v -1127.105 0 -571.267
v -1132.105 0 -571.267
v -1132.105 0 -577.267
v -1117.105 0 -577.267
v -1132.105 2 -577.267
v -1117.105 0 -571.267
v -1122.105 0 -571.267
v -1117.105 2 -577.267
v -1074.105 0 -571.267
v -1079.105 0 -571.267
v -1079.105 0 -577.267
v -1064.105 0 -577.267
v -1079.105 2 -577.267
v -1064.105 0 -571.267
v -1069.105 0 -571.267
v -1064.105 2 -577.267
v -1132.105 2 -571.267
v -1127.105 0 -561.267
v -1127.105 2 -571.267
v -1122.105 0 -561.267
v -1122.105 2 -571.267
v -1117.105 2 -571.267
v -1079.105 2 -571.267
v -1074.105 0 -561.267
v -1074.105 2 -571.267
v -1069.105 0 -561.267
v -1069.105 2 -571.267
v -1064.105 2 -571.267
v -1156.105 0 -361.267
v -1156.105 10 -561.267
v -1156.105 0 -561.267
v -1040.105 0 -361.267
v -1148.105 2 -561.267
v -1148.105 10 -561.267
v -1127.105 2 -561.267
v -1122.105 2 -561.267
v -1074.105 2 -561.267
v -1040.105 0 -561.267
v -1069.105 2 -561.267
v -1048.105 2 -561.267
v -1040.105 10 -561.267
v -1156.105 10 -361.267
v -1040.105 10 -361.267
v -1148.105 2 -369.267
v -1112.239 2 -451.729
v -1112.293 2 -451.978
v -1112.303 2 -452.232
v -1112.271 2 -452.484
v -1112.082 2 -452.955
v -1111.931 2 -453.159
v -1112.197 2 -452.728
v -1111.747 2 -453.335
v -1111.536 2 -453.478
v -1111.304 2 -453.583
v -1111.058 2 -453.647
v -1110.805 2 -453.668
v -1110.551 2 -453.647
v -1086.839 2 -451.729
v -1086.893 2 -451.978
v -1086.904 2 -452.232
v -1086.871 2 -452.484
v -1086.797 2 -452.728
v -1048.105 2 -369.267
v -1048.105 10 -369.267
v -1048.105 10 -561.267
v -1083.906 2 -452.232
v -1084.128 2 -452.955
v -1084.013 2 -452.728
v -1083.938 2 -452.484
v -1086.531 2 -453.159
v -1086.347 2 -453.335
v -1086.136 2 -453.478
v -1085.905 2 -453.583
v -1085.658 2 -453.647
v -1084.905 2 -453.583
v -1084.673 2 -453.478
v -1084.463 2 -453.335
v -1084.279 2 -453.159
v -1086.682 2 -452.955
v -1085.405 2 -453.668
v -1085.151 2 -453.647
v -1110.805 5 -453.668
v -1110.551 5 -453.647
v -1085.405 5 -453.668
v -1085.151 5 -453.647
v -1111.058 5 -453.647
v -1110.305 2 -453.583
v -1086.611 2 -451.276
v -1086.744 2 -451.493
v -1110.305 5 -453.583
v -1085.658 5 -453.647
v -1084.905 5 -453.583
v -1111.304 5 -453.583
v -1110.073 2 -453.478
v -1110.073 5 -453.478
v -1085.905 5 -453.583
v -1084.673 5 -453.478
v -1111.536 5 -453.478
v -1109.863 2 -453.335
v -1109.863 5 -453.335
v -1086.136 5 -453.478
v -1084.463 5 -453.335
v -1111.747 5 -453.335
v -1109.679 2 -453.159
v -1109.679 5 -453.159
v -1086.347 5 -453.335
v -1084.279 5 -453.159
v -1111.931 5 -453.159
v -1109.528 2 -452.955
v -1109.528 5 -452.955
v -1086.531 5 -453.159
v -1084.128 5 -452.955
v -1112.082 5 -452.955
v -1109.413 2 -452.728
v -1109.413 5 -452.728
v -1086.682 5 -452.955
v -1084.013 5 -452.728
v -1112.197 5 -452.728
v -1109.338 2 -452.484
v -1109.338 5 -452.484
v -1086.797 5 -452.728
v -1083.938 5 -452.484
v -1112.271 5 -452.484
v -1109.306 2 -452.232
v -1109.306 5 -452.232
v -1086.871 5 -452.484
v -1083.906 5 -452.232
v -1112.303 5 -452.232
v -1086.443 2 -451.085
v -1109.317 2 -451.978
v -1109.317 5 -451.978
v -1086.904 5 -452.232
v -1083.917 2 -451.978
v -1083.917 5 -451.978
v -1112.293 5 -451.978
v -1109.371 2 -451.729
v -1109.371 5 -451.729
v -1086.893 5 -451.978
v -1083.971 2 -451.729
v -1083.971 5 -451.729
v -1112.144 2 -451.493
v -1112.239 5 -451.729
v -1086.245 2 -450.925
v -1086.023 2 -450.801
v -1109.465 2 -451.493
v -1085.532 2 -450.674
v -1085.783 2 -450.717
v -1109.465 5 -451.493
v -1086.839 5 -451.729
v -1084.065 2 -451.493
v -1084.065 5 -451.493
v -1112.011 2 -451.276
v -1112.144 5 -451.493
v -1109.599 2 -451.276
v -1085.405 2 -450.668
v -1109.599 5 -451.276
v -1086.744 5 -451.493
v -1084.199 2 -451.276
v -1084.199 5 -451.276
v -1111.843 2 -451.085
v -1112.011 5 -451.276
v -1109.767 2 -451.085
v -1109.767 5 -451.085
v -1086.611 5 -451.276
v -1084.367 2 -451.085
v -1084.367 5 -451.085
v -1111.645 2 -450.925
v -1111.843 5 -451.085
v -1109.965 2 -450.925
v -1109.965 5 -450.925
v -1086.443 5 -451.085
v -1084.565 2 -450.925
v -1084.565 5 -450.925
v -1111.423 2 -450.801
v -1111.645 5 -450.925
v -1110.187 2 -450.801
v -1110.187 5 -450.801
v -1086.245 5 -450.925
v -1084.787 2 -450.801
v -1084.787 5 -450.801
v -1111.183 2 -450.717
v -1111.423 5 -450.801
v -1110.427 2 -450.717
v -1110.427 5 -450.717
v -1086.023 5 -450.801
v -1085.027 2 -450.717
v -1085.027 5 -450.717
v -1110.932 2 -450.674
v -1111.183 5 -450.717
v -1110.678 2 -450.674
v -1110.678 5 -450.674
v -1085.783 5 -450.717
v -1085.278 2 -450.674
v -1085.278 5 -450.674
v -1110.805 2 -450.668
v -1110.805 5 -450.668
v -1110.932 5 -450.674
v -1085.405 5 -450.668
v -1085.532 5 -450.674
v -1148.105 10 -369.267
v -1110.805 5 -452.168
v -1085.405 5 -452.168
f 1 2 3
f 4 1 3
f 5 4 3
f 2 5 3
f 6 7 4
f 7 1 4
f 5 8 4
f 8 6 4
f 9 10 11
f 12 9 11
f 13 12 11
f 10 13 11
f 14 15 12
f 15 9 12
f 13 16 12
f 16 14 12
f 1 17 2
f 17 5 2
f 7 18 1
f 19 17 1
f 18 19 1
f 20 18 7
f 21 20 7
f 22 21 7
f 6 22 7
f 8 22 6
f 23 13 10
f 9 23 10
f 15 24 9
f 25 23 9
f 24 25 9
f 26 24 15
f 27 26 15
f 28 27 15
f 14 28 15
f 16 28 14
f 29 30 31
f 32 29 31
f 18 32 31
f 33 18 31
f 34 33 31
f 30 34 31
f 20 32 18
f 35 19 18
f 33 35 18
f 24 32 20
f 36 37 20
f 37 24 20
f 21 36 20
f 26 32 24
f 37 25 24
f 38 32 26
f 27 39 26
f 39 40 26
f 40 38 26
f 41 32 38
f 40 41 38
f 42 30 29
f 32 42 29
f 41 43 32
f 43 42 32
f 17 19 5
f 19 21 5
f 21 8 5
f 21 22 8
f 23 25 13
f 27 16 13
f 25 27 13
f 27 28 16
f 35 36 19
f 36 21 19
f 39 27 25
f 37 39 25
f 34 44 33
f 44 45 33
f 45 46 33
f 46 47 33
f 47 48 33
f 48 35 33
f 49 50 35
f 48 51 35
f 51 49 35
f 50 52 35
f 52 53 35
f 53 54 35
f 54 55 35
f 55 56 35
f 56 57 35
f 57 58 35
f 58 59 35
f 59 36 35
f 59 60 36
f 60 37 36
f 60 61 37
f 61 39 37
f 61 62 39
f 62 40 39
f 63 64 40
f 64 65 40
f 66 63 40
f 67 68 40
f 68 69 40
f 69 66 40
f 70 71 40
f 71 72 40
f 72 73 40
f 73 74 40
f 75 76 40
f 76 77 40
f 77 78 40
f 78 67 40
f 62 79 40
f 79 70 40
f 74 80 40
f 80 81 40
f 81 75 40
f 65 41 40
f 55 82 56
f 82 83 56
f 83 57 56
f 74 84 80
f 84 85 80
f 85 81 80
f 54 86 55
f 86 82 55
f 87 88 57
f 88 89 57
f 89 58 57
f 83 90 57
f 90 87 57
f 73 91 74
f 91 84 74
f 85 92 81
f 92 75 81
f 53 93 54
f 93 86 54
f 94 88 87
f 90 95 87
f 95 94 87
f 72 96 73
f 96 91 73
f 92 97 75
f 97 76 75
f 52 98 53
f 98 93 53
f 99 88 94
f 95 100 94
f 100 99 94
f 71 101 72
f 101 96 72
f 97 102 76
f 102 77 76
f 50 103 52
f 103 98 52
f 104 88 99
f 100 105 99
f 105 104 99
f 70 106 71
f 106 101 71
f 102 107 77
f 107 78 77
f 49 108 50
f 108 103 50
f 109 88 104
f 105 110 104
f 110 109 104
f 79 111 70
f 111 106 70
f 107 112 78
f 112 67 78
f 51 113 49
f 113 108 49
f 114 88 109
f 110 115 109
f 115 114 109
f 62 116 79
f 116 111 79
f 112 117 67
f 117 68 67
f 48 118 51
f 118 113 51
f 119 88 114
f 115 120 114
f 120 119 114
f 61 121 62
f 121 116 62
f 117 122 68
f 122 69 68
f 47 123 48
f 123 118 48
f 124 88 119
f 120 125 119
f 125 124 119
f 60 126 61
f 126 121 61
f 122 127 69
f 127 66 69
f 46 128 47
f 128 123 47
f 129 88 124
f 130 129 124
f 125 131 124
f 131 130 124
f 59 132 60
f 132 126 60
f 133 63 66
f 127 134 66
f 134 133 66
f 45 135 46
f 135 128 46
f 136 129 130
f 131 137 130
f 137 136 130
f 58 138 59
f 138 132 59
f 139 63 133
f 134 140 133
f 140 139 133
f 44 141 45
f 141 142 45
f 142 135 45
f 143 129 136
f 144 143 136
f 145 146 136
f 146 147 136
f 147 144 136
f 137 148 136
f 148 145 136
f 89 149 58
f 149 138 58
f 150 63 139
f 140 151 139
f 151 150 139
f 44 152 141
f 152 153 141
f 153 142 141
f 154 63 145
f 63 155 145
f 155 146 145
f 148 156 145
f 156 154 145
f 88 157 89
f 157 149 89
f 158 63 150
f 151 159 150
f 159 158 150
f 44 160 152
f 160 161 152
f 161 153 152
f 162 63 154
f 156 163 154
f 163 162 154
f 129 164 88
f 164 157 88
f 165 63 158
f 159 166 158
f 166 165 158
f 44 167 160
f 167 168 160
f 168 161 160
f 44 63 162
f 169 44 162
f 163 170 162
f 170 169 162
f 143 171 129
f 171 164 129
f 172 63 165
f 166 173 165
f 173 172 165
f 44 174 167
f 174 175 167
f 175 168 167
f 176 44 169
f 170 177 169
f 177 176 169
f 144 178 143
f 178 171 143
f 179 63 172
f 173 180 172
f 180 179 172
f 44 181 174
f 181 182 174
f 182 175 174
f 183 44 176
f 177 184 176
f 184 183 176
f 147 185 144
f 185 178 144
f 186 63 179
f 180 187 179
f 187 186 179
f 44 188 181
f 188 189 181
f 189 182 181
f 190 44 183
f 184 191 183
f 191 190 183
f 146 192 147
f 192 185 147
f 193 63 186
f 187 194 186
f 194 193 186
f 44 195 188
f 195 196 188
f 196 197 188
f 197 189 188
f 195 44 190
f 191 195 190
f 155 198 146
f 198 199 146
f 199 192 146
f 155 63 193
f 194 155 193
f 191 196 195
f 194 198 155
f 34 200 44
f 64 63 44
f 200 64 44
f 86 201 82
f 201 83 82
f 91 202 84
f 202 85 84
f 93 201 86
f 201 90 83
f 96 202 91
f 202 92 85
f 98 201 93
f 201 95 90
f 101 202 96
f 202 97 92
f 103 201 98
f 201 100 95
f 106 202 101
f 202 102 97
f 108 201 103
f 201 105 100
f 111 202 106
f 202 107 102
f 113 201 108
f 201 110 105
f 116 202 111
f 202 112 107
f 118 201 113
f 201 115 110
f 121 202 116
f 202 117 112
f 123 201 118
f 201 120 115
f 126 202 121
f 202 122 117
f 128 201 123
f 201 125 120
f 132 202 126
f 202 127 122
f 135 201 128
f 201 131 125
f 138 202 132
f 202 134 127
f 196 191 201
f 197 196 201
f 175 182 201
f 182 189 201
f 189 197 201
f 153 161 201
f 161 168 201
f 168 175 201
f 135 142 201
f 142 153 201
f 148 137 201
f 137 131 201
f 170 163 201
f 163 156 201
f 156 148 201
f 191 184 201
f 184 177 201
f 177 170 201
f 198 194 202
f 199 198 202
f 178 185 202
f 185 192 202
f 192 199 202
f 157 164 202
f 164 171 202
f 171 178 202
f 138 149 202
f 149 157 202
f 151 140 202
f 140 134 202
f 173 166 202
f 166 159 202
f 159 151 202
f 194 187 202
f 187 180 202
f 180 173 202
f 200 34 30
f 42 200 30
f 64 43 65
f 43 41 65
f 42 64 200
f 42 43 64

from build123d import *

# Parameters (mm, degrees)
SKETCH3_W               = 116
SKETCH3_H               = 416
BOSS_EXTRUDE1_DEPTH     = 10
SKETCH4_W               = 100
SKETCH4_H               = 400
CUT_EXTRUDE1_DEPTH      = 8
SKETCH6_W               = 3
SKETCH6_H               = 100
BOSS_EXTRUDE4_DEPTH     = 3
SKETCH7_R               = 1.5
BOSS_EXTRUDE5_DEPTH     = 3
CUT_EXTRUDE3_DEPTH      = 10
CUT_EXTRUDE3_DEPTH_BACK = 10
SKETCH8_W               = 116
SKETCH8_H               = 200
CUT_EXTRUDE4_DEPTH      = 10
SKETCH11_W              = 8
SKETCH11_H              = 16
CUT_EXTRUDE5_DEPTH      = 10
SKETCH13_R              = 1.5
BOSS_EXTRUDE8_DEPTH     = 3


with BuildPart() as part:
    # Sketch3 → Boss-Extrude1 (new body)
    with BuildSketch(Plane(origin=(0, 0, 0), x_dir=(1, 0, 0), z_dir=(0, 1, 0))):
        with Locations((-1098.104867157, 569.267379684)):
            Rectangle(SKETCH3_W, SKETCH3_H)
    extrude(amount=BOSS_EXTRUDE1_DEPTH)

    # Sketch4 → Cut-Extrude1 (cut)
    with BuildSketch(Plane(origin=(0, 10, 0), x_dir=(1, 0, 0), z_dir=(0, 1, 0))):
        with Locations((-1098.104867157, 569.267379684)):
            Rectangle(SKETCH4_W, SKETCH4_H)
    extrude(amount=-CUT_EXTRUDE1_DEPTH, mode=Mode.SUBTRACT)

    # Sketch6 → Boss-Extrude4 (add)
    with BuildSketch(Plane(origin=(0, 2, 0), x_dir=(1, 0, 0), z_dir=(0, 1, 0))):
        with Locations((-1129.604867157, 719.267379684)):
            Rectangle(SKETCH6_W, SKETCH6_H)
        with Locations((-1066.604867157, 719.267379684)):
            Rectangle(SKETCH6_W, SKETCH6_H)
    extrude(amount=BOSS_EXTRUDE4_DEPTH)

    # Sketch7 → Boss-Extrude5 (add)
    with BuildSketch(Plane(origin=(0, 2, 0), x_dir=(1, 0, 0), z_dir=(0, 1, 0))):
        with Locations(Location((-1085.404867157, 452.168271652, 0), (0, 0, 270))):
            Circle(SKETCH7_R)
    extrude(amount=BOSS_EXTRUDE5_DEPTH)

    # Sketch8 → Cut-Extrude3 (cut, two sides: drawn at the far end of the back side and taken through both)
    with BuildSketch(Plane(origin=(0, 2, 0), x_dir=(1, 0, 0), z_dir=(0, 1, 0)).offset(-CUT_EXTRUDE3_DEPTH_BACK)):
        with Locations((-1098.104867157, 677.267379684)):
            Rectangle(SKETCH8_W, SKETCH8_H)
    extrude(amount=CUT_EXTRUDE3_DEPTH + CUT_EXTRUDE3_DEPTH_BACK, mode=Mode.SUBTRACT)

    # Sketch9 → Cut-Extrude4 (cut)
    with BuildSketch(Plane(origin=(0, 2, 0), x_dir=(1, 0, 0), z_dir=(0, 1, 0))):
        Polygon((-1156.104867157, 577.267379684), (-1156.104867157, 561.267379684), (-1127.104867157, 561.267379684), (-1127.104867157, 571.267379684), (-1132.104867157, 571.267379684), (-1132.104867157, 577.267379684), align=None)
        Polygon((-1079.104867157, 577.267379684), (-1117.104867157, 577.267379684), (-1117.104867157, 571.267379684), (-1122.104867157, 571.267379684), (-1122.104867157, 561.267379684), (-1074.104867157, 561.267379684), (-1074.104867157, 571.267379684), (-1079.104867157, 571.267379684), align=None)
        Polygon((-1069.104867157, 561.267379684), (-1048.104867157, 561.267379684), (-1048.104867157, 577.267379684), (-1064.104867157, 577.267379684), (-1064.104867157, 571.267379684), (-1069.104867157, 571.267379684), align=None)
    extrude(amount=-CUT_EXTRUDE4_DEPTH, mode=Mode.SUBTRACT)

    # Sketch11 → Cut-Extrude5 (cut)
    with BuildSketch(Plane(origin=(0, 10, 0), x_dir=(1, 0, 0), z_dir=(0, 1, 0))):
        with Locations((-1152.104867157, 569.267379684)):
            Rectangle(SKETCH11_W, SKETCH11_H)
        with Locations((-1044.104867157, 569.267379684)):
            Rectangle(SKETCH11_W, SKETCH11_H)
    extrude(amount=-CUT_EXTRUDE5_DEPTH, mode=Mode.SUBTRACT)

    # Sketch13 → Boss-Extrude8 (add)
    with BuildSketch(Plane(origin=(0, 2, 0), x_dir=(1, 0, 0), z_dir=(0, 1, 0))):
        with Locations(Location((-1110.804867157, 452.168271652, 0), (0, 0, 270))):
            Circle(SKETCH13_R)
    extrude(amount=BOSS_EXTRUDE8_DEPTH)


solid = part.part
